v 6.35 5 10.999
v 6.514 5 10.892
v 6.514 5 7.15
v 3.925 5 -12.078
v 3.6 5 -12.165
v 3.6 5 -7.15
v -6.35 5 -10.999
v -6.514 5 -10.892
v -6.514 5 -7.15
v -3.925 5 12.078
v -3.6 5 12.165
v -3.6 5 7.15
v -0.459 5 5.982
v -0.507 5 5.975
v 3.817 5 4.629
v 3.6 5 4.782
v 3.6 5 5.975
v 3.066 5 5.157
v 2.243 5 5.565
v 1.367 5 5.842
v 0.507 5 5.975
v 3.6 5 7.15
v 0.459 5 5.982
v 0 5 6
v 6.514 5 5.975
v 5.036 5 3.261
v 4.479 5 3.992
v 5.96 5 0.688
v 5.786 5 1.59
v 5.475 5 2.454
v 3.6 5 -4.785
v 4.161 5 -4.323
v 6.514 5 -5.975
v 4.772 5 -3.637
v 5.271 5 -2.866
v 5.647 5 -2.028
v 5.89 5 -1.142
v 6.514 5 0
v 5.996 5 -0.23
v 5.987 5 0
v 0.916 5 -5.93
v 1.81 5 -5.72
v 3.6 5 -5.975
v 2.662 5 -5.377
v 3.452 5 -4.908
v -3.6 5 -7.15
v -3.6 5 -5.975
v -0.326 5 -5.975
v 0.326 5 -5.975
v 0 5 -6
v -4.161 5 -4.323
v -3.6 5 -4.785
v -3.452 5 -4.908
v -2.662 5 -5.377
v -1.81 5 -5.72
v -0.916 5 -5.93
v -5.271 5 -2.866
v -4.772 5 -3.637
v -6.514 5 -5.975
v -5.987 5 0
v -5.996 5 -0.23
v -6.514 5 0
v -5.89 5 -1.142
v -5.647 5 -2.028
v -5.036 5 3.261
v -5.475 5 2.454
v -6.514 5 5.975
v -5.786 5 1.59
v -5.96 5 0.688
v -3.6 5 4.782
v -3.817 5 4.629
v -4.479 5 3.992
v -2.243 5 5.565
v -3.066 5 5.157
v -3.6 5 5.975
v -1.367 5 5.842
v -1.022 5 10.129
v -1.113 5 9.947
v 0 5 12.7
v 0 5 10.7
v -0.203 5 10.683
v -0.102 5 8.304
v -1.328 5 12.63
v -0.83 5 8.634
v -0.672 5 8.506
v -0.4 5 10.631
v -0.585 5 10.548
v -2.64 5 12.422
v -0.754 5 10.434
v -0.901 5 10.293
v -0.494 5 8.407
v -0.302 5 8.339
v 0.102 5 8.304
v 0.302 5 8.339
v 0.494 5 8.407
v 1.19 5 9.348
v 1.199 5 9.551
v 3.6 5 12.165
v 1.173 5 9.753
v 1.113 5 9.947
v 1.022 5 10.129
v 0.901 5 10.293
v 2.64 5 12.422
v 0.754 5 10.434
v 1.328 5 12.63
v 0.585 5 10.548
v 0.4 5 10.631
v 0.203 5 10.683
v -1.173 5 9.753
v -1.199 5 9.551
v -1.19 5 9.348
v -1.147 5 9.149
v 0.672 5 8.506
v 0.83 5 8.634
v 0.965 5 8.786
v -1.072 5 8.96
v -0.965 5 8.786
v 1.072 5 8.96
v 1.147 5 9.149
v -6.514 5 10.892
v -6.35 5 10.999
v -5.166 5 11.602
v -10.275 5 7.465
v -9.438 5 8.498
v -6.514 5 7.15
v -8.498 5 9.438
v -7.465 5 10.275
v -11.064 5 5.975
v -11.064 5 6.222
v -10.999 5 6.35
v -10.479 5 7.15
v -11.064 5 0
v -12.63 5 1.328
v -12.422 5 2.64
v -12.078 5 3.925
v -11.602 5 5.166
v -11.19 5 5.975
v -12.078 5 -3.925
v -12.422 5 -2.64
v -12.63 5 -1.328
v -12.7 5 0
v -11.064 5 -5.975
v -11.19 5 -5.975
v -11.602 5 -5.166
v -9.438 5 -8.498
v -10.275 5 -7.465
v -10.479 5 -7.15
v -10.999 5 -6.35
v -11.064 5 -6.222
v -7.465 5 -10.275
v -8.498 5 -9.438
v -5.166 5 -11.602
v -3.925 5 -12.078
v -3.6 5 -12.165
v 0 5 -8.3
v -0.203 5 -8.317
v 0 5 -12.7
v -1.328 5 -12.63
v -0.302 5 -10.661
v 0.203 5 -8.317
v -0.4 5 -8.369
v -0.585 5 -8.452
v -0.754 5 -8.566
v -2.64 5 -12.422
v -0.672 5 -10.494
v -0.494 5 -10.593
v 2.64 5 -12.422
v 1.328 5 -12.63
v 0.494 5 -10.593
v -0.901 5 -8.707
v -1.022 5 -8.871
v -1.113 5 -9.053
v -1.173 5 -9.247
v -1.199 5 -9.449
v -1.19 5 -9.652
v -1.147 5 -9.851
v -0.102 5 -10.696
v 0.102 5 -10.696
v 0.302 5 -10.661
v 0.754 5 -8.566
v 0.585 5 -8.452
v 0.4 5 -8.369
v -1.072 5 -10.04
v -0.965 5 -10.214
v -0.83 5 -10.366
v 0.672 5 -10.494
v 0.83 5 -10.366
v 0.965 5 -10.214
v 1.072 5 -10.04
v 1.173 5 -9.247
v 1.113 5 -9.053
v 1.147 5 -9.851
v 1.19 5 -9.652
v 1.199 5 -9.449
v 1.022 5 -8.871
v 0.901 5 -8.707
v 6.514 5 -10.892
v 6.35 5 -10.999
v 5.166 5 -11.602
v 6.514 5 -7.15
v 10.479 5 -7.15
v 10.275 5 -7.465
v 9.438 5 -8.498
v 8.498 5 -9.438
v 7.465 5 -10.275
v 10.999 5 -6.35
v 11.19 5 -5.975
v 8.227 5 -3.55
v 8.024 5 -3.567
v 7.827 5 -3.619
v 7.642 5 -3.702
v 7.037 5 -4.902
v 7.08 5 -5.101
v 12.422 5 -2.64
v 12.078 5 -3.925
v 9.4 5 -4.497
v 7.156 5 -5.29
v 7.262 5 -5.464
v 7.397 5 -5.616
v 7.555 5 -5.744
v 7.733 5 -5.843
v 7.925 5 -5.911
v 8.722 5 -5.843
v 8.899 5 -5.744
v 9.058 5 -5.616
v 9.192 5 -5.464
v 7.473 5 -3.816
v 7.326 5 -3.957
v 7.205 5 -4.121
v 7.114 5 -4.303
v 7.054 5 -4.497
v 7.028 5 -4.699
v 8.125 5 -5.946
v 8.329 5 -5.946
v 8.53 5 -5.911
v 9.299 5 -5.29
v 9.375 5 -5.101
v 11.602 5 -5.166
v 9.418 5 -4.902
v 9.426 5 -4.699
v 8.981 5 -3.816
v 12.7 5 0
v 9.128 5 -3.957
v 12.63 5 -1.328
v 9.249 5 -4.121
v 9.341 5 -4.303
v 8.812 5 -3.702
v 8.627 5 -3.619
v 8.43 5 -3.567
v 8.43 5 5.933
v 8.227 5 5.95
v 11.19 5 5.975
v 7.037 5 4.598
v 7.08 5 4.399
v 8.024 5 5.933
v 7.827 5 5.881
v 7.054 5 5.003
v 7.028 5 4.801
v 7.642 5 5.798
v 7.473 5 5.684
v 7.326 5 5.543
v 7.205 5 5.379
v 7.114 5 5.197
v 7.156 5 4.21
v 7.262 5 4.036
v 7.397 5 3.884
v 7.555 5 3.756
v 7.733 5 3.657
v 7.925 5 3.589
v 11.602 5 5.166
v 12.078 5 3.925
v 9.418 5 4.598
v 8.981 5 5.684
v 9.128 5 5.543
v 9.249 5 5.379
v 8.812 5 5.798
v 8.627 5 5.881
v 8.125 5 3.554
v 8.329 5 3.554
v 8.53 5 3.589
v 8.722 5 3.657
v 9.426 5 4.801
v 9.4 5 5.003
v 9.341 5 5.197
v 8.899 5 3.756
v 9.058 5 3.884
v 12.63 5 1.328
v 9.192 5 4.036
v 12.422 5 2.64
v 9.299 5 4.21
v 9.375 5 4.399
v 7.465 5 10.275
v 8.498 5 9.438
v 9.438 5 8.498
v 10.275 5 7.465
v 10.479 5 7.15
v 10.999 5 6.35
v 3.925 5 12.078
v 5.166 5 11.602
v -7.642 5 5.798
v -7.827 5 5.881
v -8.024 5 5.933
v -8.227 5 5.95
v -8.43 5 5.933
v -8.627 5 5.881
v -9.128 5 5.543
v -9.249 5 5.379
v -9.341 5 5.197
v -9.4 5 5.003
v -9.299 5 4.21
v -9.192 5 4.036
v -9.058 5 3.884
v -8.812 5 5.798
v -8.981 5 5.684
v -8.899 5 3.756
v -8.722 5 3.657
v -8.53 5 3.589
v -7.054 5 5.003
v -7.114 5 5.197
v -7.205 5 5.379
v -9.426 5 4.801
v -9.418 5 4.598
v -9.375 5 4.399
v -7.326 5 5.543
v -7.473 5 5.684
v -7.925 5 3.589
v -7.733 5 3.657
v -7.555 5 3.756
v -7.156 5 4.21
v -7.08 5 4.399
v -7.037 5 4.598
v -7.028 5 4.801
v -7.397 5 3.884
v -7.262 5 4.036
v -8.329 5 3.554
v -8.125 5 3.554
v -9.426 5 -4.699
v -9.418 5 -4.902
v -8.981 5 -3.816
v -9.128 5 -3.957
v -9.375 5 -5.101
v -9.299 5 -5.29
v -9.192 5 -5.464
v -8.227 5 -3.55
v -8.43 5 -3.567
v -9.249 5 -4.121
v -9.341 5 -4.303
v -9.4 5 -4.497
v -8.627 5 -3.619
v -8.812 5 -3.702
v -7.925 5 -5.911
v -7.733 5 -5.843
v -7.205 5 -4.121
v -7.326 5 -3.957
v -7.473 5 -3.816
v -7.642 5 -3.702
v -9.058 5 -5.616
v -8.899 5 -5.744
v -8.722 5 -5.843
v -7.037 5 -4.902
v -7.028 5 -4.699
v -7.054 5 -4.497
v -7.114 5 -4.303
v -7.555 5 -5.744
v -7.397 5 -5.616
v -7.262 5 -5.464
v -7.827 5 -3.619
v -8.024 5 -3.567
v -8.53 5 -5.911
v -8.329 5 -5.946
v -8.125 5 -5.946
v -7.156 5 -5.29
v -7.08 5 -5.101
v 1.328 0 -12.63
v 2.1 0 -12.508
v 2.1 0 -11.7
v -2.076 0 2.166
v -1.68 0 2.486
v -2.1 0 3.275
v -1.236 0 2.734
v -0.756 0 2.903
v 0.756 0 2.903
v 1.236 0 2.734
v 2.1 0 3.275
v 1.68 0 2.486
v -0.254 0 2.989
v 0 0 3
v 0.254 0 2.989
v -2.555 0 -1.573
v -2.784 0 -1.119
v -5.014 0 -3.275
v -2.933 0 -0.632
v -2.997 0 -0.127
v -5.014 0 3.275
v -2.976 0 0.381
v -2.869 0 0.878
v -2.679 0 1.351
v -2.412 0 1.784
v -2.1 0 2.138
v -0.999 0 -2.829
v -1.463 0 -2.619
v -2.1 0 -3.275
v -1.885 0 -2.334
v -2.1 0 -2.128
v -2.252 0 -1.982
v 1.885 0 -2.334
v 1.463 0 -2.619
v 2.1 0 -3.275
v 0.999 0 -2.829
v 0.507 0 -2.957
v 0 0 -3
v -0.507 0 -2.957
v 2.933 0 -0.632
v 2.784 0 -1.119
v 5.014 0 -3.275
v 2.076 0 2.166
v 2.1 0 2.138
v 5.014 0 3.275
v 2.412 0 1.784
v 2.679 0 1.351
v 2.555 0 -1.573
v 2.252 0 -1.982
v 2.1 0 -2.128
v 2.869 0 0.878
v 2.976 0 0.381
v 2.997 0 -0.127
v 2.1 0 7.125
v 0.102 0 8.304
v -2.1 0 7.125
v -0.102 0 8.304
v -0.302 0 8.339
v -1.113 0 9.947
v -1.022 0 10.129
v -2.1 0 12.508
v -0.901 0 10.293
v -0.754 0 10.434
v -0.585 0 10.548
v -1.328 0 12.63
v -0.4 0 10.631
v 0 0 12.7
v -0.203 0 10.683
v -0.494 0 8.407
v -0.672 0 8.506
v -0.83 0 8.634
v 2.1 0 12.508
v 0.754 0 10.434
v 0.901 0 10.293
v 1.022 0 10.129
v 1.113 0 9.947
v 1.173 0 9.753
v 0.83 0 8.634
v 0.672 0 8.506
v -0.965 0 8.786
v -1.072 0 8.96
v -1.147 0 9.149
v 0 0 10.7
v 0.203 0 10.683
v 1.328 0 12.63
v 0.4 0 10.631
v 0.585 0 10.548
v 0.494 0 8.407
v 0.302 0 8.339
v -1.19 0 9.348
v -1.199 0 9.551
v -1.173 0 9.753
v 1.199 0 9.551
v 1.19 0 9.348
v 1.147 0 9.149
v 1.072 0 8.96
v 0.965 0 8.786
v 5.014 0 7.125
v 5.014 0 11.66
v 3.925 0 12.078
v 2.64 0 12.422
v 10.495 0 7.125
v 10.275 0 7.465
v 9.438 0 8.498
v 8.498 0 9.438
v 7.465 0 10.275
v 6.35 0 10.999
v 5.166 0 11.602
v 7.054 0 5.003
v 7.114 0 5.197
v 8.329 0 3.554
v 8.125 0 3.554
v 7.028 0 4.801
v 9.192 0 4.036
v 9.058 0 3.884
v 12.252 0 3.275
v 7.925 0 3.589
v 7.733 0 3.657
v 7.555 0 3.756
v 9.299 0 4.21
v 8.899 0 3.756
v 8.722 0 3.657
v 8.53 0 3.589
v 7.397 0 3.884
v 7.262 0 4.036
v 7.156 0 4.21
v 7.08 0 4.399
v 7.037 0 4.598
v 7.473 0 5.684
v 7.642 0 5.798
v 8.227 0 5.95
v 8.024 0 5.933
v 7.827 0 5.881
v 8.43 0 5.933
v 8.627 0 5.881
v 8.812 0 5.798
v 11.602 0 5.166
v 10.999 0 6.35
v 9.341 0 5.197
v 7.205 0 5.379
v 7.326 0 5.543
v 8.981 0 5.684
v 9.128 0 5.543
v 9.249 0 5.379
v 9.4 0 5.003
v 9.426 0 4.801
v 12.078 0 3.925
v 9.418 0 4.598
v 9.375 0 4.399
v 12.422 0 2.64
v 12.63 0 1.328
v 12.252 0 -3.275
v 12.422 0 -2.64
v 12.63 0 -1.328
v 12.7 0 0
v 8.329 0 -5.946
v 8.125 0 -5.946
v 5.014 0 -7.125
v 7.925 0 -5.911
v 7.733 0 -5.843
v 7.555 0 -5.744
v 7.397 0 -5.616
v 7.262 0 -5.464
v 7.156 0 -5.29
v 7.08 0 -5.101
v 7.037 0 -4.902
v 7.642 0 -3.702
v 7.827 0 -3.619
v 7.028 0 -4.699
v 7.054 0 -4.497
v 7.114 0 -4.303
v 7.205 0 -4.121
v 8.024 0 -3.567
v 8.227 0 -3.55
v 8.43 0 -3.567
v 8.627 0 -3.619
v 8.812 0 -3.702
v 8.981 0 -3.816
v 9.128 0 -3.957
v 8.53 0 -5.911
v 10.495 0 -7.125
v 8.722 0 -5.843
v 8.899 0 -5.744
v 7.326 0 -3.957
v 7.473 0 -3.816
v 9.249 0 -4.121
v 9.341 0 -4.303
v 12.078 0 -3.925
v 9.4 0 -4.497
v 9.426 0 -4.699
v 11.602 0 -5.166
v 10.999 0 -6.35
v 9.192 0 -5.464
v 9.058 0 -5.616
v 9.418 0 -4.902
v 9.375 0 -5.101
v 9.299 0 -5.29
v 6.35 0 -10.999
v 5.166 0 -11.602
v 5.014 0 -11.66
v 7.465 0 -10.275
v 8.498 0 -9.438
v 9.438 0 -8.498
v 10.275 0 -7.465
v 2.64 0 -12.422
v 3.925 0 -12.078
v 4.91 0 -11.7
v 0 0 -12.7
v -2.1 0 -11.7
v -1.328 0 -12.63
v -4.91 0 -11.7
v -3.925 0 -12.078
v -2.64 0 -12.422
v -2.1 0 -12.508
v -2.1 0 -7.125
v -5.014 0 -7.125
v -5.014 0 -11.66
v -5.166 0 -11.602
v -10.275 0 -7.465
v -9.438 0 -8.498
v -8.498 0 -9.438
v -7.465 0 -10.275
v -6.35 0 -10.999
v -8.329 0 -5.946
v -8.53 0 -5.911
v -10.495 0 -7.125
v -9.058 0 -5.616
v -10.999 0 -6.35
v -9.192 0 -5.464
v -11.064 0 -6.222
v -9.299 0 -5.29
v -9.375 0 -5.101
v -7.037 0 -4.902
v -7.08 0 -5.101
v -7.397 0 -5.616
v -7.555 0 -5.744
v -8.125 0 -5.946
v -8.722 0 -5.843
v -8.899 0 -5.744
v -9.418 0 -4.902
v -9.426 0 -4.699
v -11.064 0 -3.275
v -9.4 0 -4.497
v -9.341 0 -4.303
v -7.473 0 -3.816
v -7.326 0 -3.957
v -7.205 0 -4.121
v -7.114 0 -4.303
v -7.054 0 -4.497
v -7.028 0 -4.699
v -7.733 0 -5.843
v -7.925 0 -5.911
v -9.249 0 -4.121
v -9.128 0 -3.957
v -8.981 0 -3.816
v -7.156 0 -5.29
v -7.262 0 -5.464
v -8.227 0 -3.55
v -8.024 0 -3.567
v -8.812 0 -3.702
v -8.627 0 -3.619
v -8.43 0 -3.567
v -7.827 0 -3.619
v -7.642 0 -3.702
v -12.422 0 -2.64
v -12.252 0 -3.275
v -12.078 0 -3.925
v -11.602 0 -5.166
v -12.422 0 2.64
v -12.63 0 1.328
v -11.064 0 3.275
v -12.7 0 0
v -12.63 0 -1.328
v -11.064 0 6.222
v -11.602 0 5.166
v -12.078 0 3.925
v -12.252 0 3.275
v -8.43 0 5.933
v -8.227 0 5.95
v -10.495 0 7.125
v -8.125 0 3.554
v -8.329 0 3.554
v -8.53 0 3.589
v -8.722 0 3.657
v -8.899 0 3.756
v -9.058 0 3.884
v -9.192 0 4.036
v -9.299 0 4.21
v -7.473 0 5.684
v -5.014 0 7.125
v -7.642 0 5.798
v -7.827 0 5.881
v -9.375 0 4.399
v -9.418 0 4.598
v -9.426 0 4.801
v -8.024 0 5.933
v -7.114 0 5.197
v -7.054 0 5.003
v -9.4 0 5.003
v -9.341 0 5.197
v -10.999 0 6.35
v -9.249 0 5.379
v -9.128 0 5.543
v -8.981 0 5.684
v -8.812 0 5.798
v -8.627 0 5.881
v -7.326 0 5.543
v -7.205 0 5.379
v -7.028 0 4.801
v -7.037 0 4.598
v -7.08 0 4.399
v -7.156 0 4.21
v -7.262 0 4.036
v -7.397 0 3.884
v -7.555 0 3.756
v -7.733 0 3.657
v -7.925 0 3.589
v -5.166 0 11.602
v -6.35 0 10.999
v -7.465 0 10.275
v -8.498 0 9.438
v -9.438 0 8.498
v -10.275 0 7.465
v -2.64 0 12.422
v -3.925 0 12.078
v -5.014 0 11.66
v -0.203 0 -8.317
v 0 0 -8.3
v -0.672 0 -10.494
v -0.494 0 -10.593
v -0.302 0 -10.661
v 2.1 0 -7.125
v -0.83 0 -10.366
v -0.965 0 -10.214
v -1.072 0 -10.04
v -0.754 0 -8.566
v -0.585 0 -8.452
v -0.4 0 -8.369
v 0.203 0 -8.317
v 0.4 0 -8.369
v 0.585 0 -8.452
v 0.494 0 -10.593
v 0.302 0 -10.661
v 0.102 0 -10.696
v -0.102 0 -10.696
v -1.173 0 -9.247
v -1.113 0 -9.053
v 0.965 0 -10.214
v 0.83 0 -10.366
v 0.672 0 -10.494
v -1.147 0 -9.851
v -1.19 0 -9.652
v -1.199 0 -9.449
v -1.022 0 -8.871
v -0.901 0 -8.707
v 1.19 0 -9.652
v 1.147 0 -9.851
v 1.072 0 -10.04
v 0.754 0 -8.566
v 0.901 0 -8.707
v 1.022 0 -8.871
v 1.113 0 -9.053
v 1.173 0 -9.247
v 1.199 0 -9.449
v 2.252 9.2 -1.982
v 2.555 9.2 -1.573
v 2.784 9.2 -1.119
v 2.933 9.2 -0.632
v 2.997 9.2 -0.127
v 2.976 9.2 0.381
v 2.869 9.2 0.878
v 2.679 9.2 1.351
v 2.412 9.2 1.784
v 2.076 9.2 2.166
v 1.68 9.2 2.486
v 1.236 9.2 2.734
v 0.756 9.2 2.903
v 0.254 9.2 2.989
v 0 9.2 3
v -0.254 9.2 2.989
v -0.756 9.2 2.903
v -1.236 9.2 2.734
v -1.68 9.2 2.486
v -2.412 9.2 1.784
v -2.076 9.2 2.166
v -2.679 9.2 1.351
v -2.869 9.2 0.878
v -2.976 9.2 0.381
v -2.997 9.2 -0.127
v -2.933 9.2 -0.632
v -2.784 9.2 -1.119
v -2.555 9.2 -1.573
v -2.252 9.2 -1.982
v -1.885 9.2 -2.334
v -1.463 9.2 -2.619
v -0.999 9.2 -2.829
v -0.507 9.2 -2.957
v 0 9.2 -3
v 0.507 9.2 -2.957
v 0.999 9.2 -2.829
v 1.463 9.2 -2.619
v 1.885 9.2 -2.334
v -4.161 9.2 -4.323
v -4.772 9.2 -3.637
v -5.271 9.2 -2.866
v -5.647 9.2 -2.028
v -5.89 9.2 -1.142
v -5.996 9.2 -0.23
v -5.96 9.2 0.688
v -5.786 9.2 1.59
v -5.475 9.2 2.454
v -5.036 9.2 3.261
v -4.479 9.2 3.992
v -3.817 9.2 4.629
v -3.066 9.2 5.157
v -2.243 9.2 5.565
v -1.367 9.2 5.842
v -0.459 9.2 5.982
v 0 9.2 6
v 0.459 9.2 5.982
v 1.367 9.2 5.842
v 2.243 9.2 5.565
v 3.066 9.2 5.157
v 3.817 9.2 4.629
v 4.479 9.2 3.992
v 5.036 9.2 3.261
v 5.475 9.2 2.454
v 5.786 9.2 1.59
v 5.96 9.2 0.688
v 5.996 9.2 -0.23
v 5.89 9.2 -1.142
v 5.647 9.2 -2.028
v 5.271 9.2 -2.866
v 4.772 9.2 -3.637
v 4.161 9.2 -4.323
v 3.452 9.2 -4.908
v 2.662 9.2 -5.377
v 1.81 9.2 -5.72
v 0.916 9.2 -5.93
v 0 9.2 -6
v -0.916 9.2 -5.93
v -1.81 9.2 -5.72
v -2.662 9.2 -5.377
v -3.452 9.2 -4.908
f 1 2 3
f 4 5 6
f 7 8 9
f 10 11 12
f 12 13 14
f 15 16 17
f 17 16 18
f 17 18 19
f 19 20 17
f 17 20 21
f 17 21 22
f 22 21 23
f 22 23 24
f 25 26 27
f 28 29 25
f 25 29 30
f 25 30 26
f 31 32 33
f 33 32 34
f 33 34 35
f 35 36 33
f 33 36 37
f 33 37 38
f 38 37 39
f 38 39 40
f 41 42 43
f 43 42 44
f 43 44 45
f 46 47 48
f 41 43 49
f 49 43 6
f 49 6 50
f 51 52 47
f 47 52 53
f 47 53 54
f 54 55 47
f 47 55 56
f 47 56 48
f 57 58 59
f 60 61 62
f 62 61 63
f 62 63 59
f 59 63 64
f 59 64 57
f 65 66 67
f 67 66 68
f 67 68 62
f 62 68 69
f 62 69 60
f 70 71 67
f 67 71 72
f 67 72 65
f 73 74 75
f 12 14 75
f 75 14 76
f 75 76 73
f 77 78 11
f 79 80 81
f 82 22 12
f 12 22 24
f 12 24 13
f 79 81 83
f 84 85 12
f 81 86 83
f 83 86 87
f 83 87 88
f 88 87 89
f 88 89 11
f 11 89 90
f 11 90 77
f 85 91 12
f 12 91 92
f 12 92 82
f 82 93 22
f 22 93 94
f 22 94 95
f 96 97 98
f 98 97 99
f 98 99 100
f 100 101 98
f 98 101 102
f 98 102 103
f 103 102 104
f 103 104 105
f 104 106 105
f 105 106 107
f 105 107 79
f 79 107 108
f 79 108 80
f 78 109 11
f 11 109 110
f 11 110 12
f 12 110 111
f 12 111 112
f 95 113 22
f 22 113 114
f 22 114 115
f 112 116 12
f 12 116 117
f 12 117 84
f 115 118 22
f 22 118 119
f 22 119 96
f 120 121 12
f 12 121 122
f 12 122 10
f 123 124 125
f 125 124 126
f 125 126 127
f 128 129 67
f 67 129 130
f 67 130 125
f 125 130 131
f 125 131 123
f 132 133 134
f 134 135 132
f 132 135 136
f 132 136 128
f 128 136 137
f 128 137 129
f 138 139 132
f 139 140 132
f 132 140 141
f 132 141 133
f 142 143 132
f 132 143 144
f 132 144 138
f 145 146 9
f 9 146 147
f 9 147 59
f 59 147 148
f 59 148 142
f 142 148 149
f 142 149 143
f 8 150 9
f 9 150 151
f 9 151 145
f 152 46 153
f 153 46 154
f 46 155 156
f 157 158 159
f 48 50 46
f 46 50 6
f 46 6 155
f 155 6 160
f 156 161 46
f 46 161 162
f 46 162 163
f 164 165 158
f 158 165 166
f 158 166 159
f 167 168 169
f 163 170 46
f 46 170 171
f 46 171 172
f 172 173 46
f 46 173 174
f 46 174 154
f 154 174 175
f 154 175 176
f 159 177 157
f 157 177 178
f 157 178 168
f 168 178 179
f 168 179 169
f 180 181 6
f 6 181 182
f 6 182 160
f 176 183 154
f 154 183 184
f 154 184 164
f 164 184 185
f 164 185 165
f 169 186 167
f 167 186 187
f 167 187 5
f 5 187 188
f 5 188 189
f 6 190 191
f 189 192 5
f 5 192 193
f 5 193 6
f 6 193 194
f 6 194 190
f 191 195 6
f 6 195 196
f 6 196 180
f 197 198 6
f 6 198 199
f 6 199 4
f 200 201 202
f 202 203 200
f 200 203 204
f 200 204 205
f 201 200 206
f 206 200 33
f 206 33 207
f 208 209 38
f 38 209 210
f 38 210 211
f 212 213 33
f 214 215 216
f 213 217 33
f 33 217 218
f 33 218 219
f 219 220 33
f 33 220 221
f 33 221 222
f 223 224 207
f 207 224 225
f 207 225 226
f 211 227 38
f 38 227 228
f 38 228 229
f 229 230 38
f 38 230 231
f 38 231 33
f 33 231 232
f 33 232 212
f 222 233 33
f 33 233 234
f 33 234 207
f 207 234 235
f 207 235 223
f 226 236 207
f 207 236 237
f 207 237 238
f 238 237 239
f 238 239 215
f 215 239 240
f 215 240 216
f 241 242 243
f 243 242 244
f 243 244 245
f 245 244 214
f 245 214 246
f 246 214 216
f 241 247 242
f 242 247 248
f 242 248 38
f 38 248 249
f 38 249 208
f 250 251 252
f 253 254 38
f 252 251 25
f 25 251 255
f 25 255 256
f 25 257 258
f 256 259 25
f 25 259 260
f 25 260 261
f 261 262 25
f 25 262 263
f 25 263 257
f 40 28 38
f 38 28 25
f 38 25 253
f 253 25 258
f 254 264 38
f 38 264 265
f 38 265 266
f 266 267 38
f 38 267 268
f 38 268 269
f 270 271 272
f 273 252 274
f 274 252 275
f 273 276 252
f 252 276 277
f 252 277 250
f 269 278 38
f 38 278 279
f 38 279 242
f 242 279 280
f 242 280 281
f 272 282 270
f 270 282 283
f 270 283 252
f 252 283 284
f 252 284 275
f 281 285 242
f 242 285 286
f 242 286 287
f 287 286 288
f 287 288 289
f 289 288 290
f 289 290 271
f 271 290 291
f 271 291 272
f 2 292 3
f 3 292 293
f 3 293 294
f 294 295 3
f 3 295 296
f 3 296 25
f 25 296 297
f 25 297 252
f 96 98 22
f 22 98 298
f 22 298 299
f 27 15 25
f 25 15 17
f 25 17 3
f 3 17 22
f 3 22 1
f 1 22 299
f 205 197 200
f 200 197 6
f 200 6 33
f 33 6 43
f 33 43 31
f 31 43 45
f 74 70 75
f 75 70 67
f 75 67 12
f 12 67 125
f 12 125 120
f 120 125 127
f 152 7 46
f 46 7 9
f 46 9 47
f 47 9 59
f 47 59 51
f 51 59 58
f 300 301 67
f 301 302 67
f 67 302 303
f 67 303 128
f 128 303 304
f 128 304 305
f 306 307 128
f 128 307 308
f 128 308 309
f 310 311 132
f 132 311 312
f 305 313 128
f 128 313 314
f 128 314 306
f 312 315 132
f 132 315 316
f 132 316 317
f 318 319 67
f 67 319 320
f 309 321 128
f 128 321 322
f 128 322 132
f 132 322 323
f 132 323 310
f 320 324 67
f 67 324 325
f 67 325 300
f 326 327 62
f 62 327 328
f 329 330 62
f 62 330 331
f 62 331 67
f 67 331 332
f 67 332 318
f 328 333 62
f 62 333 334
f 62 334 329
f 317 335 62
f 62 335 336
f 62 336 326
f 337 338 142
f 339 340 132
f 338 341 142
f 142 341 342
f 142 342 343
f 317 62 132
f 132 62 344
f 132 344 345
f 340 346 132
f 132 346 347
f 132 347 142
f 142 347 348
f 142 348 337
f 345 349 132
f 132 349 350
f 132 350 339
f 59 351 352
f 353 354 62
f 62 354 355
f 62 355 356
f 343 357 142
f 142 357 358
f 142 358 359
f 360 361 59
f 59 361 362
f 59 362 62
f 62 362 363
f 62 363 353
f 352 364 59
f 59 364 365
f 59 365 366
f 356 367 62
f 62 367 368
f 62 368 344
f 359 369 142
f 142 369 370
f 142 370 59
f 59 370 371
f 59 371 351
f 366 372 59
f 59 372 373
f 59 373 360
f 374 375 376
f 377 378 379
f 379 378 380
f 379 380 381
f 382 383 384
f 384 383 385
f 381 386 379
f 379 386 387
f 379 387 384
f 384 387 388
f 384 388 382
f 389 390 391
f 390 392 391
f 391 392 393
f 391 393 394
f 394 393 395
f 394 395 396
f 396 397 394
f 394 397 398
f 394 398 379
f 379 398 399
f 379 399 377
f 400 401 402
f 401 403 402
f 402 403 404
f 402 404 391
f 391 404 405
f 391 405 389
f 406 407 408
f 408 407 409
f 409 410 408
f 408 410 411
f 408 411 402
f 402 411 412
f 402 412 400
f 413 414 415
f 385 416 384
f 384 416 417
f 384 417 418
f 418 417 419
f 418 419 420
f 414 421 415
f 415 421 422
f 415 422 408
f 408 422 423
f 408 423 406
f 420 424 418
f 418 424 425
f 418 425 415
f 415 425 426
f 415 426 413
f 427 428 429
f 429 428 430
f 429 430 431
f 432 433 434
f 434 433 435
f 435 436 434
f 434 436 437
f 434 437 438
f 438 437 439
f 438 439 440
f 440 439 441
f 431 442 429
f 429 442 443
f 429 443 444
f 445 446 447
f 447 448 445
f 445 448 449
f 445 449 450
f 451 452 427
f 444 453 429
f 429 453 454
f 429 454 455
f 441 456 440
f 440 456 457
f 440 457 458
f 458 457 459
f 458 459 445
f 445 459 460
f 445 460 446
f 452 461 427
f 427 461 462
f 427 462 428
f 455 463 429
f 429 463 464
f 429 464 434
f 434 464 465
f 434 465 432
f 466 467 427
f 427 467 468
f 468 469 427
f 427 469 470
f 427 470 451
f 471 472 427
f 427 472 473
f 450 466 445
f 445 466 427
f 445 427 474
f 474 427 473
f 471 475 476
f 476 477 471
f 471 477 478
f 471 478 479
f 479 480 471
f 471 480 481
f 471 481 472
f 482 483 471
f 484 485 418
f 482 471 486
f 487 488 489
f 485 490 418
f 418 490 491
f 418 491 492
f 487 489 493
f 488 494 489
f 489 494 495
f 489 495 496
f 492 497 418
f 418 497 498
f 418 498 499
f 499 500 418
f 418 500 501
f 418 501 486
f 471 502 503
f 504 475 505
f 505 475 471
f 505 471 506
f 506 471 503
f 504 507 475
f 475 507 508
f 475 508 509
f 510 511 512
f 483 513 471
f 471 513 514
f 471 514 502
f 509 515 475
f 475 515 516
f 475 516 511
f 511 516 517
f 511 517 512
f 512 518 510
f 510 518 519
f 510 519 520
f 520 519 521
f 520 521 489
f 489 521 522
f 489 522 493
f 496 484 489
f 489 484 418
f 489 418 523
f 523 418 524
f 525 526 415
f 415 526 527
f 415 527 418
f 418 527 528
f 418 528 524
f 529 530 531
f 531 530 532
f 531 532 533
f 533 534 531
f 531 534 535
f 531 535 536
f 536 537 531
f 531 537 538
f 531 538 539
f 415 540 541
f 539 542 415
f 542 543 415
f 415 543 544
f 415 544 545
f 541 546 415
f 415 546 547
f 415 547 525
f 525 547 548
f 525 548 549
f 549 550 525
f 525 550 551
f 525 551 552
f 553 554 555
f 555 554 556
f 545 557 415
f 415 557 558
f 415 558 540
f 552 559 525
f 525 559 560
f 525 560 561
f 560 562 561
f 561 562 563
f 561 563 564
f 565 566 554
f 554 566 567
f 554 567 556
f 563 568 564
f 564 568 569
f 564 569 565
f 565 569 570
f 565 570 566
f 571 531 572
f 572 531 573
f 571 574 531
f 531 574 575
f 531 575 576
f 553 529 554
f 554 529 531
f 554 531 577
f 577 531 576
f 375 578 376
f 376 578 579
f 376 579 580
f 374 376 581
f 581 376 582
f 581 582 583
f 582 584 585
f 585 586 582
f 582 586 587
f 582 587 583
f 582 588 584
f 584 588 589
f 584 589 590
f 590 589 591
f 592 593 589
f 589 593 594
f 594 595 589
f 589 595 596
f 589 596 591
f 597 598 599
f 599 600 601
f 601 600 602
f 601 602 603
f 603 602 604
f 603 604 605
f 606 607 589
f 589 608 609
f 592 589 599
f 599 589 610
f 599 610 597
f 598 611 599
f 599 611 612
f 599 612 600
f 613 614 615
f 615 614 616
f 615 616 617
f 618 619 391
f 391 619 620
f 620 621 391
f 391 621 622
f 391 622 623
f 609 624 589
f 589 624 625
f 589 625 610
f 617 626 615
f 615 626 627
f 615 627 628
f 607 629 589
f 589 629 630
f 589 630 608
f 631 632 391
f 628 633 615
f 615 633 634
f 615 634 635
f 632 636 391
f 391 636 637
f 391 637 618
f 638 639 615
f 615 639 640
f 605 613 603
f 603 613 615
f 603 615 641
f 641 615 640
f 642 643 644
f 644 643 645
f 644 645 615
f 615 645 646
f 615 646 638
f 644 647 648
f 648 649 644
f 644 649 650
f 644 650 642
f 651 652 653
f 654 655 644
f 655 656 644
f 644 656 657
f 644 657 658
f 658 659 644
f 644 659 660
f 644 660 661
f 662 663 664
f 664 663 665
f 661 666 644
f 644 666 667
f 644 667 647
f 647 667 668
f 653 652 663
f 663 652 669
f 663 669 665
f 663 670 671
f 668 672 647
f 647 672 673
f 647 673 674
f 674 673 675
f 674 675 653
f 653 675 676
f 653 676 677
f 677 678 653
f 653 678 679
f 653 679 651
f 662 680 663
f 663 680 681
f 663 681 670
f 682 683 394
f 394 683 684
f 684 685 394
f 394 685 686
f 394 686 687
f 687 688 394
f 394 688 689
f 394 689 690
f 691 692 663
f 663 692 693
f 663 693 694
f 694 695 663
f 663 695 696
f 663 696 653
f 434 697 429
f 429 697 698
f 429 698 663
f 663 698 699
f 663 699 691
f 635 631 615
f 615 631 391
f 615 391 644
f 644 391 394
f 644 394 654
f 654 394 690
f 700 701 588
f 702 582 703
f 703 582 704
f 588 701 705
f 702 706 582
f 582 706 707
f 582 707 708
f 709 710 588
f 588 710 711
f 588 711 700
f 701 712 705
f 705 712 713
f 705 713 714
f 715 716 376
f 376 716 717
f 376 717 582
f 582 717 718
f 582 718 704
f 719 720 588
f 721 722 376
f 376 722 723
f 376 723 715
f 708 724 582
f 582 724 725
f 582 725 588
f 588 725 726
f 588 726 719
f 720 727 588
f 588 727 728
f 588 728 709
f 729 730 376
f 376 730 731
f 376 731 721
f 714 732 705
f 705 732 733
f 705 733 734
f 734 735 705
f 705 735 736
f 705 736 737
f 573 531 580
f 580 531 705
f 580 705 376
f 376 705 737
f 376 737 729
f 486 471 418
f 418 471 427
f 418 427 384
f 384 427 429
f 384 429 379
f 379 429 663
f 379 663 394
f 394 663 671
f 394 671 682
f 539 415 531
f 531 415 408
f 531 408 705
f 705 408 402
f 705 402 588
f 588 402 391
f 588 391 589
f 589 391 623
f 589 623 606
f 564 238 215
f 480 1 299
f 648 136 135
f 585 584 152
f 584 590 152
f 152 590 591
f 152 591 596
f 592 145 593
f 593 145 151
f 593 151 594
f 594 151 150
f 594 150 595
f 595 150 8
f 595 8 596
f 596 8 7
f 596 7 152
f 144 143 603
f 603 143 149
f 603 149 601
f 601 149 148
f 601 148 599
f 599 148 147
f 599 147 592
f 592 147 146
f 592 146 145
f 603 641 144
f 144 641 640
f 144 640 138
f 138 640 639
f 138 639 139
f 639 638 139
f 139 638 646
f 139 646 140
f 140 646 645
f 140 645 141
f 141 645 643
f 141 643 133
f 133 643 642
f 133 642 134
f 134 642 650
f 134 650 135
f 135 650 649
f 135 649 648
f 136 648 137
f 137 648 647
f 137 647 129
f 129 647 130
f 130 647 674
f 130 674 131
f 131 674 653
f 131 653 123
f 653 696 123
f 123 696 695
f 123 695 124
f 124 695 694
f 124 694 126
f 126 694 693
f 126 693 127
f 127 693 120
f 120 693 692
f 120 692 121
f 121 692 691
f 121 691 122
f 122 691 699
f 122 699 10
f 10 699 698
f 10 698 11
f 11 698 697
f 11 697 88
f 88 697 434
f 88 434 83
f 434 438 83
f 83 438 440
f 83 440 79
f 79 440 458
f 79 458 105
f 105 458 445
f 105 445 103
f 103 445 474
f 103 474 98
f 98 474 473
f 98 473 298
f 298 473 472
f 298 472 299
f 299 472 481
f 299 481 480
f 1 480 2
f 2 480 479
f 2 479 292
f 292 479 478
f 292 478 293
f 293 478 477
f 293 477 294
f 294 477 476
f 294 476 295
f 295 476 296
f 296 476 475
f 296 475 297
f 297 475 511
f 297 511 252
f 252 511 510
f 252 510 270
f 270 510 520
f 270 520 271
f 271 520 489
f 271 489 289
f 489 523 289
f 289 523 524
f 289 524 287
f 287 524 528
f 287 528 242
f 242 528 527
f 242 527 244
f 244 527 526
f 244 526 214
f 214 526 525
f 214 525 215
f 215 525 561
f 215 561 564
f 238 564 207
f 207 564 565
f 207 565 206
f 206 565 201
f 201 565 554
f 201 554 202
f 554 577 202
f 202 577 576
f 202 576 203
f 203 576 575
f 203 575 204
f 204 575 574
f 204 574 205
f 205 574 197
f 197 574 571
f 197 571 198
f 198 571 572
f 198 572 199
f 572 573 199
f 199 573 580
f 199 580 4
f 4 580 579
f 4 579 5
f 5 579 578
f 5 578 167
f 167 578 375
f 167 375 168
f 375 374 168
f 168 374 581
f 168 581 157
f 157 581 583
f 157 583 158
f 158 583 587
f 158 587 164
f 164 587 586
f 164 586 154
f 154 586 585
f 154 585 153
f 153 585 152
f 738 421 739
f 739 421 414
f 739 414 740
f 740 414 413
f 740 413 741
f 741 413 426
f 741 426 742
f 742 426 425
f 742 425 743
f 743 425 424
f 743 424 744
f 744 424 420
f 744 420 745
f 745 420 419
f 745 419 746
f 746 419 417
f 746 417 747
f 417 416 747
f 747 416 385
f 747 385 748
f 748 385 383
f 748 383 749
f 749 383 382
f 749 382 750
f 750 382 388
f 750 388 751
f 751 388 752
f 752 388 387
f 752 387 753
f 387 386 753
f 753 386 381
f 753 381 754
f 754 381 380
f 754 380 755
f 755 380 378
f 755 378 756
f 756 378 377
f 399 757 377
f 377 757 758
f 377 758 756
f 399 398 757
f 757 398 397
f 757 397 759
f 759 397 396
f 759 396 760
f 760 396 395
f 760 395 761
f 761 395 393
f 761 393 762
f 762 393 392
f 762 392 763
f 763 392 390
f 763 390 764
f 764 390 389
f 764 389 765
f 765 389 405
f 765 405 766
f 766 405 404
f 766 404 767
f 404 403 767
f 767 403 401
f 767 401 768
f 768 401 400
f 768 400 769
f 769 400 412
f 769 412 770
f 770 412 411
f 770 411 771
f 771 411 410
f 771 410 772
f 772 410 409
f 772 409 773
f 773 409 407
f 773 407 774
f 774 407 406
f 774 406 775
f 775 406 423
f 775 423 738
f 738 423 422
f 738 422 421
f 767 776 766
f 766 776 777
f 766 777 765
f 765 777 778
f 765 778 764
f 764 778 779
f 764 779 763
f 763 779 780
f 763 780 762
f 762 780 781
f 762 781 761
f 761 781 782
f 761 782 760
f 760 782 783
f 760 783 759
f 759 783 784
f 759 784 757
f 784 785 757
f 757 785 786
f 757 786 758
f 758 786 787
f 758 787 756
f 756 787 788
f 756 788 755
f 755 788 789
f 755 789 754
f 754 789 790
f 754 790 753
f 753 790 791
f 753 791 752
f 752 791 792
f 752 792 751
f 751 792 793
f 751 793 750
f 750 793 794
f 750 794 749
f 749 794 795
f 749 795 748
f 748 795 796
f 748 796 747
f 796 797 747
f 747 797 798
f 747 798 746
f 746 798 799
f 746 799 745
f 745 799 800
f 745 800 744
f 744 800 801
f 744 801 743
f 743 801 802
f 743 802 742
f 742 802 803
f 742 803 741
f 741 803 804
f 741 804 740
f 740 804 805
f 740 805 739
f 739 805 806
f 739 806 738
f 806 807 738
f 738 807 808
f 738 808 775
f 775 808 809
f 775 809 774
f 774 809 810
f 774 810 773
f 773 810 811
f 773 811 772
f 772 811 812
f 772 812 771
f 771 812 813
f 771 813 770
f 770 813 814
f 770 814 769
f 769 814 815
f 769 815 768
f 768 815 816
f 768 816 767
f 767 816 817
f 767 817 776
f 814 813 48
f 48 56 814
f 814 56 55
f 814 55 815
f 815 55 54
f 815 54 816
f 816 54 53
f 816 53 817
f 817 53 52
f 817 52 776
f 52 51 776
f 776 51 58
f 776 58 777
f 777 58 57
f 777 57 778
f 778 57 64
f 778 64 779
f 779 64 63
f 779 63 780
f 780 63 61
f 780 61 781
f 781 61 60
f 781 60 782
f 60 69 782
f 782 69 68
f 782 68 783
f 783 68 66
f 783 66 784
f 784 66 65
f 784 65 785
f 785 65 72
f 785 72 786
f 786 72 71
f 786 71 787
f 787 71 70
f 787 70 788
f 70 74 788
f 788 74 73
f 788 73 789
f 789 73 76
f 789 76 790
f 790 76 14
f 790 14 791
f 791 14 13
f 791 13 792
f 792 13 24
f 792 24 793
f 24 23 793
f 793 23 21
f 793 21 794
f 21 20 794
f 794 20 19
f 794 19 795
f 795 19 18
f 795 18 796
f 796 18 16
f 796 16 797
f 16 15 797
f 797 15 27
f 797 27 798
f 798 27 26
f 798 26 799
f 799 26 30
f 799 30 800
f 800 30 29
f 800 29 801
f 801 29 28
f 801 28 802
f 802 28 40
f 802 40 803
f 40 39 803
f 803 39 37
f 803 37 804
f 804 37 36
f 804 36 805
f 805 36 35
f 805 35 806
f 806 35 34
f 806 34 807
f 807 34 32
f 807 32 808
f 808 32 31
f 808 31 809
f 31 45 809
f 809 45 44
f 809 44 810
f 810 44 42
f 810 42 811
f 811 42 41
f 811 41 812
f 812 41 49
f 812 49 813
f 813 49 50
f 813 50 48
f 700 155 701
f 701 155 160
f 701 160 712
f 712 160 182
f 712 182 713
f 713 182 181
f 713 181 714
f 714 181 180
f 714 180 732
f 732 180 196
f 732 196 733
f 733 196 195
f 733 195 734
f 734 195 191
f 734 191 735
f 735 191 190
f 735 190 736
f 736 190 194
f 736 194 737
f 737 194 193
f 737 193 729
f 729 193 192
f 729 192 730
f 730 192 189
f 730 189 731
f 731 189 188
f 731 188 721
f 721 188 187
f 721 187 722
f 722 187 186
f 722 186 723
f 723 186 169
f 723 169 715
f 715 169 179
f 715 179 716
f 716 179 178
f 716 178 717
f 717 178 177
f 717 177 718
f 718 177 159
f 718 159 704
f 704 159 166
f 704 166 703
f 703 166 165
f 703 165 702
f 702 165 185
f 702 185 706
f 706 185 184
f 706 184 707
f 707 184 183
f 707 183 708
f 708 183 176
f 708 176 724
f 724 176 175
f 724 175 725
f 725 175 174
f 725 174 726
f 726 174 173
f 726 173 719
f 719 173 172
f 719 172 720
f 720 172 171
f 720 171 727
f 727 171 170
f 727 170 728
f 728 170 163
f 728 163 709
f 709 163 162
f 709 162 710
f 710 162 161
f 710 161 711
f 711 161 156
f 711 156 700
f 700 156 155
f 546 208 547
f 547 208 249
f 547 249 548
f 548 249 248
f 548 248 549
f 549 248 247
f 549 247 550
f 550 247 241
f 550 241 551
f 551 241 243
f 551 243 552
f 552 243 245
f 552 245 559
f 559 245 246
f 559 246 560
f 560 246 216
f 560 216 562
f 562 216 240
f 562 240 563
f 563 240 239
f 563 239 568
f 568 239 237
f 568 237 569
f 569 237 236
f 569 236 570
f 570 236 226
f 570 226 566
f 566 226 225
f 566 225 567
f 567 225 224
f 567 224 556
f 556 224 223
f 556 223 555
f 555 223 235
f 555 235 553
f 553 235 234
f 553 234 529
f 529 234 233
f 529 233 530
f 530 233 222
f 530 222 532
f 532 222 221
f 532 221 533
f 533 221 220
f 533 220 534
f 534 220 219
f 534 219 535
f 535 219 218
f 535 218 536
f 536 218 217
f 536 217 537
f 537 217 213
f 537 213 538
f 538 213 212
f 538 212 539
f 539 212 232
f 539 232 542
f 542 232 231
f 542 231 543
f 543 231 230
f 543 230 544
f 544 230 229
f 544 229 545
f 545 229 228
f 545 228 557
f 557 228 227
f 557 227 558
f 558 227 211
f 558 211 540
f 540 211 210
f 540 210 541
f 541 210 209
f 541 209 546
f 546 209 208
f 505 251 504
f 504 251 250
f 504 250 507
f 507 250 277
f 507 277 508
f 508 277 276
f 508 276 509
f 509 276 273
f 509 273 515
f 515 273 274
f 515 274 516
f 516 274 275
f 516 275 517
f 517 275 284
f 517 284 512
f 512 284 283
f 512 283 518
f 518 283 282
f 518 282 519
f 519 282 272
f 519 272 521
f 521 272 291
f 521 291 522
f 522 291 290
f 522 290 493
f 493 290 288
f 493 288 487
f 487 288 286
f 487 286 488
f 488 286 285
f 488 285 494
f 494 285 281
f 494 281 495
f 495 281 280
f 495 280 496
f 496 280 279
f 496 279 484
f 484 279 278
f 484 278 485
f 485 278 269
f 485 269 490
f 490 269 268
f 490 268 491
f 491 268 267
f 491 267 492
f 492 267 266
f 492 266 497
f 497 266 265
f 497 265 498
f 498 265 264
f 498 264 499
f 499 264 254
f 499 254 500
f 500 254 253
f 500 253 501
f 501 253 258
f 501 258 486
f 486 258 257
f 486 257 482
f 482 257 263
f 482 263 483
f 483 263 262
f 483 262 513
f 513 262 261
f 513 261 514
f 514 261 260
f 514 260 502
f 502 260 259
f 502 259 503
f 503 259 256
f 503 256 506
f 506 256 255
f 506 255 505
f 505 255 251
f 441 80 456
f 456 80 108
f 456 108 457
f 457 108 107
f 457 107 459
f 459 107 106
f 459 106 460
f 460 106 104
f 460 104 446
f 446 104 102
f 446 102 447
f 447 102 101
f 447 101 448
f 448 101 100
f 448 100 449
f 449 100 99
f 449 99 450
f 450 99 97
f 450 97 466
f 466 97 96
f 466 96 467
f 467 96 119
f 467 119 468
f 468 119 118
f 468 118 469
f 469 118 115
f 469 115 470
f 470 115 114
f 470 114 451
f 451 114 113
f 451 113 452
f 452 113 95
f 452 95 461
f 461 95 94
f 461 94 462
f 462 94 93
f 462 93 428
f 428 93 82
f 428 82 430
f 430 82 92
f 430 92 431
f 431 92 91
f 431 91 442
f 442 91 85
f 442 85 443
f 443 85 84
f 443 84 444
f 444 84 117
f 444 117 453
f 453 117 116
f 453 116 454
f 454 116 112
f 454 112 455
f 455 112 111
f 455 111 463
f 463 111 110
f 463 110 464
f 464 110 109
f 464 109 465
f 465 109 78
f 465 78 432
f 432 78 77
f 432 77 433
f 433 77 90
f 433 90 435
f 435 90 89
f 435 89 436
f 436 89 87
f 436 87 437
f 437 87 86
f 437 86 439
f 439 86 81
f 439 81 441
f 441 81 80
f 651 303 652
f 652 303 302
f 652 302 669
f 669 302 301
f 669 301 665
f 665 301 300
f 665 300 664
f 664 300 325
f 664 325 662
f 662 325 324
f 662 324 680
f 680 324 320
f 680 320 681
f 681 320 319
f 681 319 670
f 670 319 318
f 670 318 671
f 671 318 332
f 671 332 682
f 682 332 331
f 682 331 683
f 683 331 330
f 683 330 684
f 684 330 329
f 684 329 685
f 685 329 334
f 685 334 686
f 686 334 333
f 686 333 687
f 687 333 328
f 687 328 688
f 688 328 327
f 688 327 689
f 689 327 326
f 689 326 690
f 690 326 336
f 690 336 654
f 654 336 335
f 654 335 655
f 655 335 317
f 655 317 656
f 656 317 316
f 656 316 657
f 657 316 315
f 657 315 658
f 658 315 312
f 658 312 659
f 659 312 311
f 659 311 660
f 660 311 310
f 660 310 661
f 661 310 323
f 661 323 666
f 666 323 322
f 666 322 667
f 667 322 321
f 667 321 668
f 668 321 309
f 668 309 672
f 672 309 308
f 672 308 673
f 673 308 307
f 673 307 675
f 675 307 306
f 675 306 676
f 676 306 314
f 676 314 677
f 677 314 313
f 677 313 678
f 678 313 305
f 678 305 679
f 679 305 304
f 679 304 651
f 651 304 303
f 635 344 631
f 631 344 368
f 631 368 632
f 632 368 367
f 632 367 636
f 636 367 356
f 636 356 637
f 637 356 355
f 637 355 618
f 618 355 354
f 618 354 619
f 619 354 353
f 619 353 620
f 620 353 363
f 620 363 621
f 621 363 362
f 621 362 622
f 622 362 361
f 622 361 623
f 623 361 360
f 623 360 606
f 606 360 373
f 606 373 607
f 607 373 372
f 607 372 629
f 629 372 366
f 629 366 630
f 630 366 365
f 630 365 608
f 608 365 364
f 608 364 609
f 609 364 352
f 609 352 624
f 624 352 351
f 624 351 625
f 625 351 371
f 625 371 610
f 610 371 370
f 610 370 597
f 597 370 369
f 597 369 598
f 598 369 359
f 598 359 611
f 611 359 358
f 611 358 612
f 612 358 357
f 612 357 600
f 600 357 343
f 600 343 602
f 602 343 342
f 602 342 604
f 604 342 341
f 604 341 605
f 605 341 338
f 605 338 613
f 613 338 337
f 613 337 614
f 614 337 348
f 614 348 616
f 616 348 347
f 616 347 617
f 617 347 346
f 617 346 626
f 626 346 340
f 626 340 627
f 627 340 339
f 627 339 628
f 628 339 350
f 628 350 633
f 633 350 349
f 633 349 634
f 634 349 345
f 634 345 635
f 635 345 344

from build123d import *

# Parameters (mm, degrees)
SKETCH1_R           = 12.7
SKETCH1_R_2         = 3
BOSS_EXTRUDE1_DEPTH = 5
SKETCH2_R           = 6
SKETCH2_R_2         = 3
BOSS_EXTRUDE2_DEPTH = 4.2
SKETCH3_R           = 1.2
CUT_EXTRUDE1_DEPTH  = 19.643497526


with BuildPart() as part:
    # Sketch1 → Boss-Extrude1 (new body)
    with BuildSketch(Plane(origin=(0, 0, 0), x_dir=(1, 0, 0), z_dir=(0, 1, 0))):
        with Locations(Location((0, 0, 0), (0, 0, 270))):
            Circle(SKETCH1_R)
        with Locations(Location((0, 0, 0), (0, 0, 270))):
            Circle(SKETCH1_R_2, mode=Mode.SUBTRACT)
    extrude(amount=BOSS_EXTRUDE1_DEPTH)

    # Sketch2 → Boss-Extrude2 (add)
    with BuildSketch(Plane(origin=(0, 5, 0), x_dir=(1, 0, 0), z_dir=(0, 1, 0))):
        with Locations(Location((0, 0, 0), (0, 0, 270))):
            Circle(SKETCH2_R)
        with Locations(Location((0, 0, 0), (0, 0, 270))):
            Circle(SKETCH2_R_2, mode=Mode.SUBTRACT)
    extrude(amount=BOSS_EXTRUDE2_DEPTH)

    # Sketch3 → Cut-Extrude1 (cut, through all)
    with BuildSketch(Plane(origin=(0, 5, 0), x_dir=(1, 0, 0), z_dir=(0, 1, 0))):
        with Locations(Location((0, 9.5, 0), (0, 0, 270))):
            Circle(SKETCH3_R)
        with Locations(Location((8.227241336, 4.75, 0), (0, 0, 270))):
            Circle(SKETCH3_R)
        with Locations(Location((8.227241336, -4.75, 0), (0, 0, 270))):
            Circle(SKETCH3_R)
        with Locations(Location((0, -9.5, 0), (0, 0, 270))):
            Circle(SKETCH3_R)
        with Locations(Location((-8.227241336, -4.75, 0), (0, 0, 270))):
            Circle(SKETCH3_R)
        with Locations(Location((-8.227241336, 4.75, 0), (0, 0, 270))):
            Circle(SKETCH3_R)
    extrude(amount=-CUT_EXTRUDE1_DEPTH, mode=Mode.SUBTRACT)


solid = part.part
